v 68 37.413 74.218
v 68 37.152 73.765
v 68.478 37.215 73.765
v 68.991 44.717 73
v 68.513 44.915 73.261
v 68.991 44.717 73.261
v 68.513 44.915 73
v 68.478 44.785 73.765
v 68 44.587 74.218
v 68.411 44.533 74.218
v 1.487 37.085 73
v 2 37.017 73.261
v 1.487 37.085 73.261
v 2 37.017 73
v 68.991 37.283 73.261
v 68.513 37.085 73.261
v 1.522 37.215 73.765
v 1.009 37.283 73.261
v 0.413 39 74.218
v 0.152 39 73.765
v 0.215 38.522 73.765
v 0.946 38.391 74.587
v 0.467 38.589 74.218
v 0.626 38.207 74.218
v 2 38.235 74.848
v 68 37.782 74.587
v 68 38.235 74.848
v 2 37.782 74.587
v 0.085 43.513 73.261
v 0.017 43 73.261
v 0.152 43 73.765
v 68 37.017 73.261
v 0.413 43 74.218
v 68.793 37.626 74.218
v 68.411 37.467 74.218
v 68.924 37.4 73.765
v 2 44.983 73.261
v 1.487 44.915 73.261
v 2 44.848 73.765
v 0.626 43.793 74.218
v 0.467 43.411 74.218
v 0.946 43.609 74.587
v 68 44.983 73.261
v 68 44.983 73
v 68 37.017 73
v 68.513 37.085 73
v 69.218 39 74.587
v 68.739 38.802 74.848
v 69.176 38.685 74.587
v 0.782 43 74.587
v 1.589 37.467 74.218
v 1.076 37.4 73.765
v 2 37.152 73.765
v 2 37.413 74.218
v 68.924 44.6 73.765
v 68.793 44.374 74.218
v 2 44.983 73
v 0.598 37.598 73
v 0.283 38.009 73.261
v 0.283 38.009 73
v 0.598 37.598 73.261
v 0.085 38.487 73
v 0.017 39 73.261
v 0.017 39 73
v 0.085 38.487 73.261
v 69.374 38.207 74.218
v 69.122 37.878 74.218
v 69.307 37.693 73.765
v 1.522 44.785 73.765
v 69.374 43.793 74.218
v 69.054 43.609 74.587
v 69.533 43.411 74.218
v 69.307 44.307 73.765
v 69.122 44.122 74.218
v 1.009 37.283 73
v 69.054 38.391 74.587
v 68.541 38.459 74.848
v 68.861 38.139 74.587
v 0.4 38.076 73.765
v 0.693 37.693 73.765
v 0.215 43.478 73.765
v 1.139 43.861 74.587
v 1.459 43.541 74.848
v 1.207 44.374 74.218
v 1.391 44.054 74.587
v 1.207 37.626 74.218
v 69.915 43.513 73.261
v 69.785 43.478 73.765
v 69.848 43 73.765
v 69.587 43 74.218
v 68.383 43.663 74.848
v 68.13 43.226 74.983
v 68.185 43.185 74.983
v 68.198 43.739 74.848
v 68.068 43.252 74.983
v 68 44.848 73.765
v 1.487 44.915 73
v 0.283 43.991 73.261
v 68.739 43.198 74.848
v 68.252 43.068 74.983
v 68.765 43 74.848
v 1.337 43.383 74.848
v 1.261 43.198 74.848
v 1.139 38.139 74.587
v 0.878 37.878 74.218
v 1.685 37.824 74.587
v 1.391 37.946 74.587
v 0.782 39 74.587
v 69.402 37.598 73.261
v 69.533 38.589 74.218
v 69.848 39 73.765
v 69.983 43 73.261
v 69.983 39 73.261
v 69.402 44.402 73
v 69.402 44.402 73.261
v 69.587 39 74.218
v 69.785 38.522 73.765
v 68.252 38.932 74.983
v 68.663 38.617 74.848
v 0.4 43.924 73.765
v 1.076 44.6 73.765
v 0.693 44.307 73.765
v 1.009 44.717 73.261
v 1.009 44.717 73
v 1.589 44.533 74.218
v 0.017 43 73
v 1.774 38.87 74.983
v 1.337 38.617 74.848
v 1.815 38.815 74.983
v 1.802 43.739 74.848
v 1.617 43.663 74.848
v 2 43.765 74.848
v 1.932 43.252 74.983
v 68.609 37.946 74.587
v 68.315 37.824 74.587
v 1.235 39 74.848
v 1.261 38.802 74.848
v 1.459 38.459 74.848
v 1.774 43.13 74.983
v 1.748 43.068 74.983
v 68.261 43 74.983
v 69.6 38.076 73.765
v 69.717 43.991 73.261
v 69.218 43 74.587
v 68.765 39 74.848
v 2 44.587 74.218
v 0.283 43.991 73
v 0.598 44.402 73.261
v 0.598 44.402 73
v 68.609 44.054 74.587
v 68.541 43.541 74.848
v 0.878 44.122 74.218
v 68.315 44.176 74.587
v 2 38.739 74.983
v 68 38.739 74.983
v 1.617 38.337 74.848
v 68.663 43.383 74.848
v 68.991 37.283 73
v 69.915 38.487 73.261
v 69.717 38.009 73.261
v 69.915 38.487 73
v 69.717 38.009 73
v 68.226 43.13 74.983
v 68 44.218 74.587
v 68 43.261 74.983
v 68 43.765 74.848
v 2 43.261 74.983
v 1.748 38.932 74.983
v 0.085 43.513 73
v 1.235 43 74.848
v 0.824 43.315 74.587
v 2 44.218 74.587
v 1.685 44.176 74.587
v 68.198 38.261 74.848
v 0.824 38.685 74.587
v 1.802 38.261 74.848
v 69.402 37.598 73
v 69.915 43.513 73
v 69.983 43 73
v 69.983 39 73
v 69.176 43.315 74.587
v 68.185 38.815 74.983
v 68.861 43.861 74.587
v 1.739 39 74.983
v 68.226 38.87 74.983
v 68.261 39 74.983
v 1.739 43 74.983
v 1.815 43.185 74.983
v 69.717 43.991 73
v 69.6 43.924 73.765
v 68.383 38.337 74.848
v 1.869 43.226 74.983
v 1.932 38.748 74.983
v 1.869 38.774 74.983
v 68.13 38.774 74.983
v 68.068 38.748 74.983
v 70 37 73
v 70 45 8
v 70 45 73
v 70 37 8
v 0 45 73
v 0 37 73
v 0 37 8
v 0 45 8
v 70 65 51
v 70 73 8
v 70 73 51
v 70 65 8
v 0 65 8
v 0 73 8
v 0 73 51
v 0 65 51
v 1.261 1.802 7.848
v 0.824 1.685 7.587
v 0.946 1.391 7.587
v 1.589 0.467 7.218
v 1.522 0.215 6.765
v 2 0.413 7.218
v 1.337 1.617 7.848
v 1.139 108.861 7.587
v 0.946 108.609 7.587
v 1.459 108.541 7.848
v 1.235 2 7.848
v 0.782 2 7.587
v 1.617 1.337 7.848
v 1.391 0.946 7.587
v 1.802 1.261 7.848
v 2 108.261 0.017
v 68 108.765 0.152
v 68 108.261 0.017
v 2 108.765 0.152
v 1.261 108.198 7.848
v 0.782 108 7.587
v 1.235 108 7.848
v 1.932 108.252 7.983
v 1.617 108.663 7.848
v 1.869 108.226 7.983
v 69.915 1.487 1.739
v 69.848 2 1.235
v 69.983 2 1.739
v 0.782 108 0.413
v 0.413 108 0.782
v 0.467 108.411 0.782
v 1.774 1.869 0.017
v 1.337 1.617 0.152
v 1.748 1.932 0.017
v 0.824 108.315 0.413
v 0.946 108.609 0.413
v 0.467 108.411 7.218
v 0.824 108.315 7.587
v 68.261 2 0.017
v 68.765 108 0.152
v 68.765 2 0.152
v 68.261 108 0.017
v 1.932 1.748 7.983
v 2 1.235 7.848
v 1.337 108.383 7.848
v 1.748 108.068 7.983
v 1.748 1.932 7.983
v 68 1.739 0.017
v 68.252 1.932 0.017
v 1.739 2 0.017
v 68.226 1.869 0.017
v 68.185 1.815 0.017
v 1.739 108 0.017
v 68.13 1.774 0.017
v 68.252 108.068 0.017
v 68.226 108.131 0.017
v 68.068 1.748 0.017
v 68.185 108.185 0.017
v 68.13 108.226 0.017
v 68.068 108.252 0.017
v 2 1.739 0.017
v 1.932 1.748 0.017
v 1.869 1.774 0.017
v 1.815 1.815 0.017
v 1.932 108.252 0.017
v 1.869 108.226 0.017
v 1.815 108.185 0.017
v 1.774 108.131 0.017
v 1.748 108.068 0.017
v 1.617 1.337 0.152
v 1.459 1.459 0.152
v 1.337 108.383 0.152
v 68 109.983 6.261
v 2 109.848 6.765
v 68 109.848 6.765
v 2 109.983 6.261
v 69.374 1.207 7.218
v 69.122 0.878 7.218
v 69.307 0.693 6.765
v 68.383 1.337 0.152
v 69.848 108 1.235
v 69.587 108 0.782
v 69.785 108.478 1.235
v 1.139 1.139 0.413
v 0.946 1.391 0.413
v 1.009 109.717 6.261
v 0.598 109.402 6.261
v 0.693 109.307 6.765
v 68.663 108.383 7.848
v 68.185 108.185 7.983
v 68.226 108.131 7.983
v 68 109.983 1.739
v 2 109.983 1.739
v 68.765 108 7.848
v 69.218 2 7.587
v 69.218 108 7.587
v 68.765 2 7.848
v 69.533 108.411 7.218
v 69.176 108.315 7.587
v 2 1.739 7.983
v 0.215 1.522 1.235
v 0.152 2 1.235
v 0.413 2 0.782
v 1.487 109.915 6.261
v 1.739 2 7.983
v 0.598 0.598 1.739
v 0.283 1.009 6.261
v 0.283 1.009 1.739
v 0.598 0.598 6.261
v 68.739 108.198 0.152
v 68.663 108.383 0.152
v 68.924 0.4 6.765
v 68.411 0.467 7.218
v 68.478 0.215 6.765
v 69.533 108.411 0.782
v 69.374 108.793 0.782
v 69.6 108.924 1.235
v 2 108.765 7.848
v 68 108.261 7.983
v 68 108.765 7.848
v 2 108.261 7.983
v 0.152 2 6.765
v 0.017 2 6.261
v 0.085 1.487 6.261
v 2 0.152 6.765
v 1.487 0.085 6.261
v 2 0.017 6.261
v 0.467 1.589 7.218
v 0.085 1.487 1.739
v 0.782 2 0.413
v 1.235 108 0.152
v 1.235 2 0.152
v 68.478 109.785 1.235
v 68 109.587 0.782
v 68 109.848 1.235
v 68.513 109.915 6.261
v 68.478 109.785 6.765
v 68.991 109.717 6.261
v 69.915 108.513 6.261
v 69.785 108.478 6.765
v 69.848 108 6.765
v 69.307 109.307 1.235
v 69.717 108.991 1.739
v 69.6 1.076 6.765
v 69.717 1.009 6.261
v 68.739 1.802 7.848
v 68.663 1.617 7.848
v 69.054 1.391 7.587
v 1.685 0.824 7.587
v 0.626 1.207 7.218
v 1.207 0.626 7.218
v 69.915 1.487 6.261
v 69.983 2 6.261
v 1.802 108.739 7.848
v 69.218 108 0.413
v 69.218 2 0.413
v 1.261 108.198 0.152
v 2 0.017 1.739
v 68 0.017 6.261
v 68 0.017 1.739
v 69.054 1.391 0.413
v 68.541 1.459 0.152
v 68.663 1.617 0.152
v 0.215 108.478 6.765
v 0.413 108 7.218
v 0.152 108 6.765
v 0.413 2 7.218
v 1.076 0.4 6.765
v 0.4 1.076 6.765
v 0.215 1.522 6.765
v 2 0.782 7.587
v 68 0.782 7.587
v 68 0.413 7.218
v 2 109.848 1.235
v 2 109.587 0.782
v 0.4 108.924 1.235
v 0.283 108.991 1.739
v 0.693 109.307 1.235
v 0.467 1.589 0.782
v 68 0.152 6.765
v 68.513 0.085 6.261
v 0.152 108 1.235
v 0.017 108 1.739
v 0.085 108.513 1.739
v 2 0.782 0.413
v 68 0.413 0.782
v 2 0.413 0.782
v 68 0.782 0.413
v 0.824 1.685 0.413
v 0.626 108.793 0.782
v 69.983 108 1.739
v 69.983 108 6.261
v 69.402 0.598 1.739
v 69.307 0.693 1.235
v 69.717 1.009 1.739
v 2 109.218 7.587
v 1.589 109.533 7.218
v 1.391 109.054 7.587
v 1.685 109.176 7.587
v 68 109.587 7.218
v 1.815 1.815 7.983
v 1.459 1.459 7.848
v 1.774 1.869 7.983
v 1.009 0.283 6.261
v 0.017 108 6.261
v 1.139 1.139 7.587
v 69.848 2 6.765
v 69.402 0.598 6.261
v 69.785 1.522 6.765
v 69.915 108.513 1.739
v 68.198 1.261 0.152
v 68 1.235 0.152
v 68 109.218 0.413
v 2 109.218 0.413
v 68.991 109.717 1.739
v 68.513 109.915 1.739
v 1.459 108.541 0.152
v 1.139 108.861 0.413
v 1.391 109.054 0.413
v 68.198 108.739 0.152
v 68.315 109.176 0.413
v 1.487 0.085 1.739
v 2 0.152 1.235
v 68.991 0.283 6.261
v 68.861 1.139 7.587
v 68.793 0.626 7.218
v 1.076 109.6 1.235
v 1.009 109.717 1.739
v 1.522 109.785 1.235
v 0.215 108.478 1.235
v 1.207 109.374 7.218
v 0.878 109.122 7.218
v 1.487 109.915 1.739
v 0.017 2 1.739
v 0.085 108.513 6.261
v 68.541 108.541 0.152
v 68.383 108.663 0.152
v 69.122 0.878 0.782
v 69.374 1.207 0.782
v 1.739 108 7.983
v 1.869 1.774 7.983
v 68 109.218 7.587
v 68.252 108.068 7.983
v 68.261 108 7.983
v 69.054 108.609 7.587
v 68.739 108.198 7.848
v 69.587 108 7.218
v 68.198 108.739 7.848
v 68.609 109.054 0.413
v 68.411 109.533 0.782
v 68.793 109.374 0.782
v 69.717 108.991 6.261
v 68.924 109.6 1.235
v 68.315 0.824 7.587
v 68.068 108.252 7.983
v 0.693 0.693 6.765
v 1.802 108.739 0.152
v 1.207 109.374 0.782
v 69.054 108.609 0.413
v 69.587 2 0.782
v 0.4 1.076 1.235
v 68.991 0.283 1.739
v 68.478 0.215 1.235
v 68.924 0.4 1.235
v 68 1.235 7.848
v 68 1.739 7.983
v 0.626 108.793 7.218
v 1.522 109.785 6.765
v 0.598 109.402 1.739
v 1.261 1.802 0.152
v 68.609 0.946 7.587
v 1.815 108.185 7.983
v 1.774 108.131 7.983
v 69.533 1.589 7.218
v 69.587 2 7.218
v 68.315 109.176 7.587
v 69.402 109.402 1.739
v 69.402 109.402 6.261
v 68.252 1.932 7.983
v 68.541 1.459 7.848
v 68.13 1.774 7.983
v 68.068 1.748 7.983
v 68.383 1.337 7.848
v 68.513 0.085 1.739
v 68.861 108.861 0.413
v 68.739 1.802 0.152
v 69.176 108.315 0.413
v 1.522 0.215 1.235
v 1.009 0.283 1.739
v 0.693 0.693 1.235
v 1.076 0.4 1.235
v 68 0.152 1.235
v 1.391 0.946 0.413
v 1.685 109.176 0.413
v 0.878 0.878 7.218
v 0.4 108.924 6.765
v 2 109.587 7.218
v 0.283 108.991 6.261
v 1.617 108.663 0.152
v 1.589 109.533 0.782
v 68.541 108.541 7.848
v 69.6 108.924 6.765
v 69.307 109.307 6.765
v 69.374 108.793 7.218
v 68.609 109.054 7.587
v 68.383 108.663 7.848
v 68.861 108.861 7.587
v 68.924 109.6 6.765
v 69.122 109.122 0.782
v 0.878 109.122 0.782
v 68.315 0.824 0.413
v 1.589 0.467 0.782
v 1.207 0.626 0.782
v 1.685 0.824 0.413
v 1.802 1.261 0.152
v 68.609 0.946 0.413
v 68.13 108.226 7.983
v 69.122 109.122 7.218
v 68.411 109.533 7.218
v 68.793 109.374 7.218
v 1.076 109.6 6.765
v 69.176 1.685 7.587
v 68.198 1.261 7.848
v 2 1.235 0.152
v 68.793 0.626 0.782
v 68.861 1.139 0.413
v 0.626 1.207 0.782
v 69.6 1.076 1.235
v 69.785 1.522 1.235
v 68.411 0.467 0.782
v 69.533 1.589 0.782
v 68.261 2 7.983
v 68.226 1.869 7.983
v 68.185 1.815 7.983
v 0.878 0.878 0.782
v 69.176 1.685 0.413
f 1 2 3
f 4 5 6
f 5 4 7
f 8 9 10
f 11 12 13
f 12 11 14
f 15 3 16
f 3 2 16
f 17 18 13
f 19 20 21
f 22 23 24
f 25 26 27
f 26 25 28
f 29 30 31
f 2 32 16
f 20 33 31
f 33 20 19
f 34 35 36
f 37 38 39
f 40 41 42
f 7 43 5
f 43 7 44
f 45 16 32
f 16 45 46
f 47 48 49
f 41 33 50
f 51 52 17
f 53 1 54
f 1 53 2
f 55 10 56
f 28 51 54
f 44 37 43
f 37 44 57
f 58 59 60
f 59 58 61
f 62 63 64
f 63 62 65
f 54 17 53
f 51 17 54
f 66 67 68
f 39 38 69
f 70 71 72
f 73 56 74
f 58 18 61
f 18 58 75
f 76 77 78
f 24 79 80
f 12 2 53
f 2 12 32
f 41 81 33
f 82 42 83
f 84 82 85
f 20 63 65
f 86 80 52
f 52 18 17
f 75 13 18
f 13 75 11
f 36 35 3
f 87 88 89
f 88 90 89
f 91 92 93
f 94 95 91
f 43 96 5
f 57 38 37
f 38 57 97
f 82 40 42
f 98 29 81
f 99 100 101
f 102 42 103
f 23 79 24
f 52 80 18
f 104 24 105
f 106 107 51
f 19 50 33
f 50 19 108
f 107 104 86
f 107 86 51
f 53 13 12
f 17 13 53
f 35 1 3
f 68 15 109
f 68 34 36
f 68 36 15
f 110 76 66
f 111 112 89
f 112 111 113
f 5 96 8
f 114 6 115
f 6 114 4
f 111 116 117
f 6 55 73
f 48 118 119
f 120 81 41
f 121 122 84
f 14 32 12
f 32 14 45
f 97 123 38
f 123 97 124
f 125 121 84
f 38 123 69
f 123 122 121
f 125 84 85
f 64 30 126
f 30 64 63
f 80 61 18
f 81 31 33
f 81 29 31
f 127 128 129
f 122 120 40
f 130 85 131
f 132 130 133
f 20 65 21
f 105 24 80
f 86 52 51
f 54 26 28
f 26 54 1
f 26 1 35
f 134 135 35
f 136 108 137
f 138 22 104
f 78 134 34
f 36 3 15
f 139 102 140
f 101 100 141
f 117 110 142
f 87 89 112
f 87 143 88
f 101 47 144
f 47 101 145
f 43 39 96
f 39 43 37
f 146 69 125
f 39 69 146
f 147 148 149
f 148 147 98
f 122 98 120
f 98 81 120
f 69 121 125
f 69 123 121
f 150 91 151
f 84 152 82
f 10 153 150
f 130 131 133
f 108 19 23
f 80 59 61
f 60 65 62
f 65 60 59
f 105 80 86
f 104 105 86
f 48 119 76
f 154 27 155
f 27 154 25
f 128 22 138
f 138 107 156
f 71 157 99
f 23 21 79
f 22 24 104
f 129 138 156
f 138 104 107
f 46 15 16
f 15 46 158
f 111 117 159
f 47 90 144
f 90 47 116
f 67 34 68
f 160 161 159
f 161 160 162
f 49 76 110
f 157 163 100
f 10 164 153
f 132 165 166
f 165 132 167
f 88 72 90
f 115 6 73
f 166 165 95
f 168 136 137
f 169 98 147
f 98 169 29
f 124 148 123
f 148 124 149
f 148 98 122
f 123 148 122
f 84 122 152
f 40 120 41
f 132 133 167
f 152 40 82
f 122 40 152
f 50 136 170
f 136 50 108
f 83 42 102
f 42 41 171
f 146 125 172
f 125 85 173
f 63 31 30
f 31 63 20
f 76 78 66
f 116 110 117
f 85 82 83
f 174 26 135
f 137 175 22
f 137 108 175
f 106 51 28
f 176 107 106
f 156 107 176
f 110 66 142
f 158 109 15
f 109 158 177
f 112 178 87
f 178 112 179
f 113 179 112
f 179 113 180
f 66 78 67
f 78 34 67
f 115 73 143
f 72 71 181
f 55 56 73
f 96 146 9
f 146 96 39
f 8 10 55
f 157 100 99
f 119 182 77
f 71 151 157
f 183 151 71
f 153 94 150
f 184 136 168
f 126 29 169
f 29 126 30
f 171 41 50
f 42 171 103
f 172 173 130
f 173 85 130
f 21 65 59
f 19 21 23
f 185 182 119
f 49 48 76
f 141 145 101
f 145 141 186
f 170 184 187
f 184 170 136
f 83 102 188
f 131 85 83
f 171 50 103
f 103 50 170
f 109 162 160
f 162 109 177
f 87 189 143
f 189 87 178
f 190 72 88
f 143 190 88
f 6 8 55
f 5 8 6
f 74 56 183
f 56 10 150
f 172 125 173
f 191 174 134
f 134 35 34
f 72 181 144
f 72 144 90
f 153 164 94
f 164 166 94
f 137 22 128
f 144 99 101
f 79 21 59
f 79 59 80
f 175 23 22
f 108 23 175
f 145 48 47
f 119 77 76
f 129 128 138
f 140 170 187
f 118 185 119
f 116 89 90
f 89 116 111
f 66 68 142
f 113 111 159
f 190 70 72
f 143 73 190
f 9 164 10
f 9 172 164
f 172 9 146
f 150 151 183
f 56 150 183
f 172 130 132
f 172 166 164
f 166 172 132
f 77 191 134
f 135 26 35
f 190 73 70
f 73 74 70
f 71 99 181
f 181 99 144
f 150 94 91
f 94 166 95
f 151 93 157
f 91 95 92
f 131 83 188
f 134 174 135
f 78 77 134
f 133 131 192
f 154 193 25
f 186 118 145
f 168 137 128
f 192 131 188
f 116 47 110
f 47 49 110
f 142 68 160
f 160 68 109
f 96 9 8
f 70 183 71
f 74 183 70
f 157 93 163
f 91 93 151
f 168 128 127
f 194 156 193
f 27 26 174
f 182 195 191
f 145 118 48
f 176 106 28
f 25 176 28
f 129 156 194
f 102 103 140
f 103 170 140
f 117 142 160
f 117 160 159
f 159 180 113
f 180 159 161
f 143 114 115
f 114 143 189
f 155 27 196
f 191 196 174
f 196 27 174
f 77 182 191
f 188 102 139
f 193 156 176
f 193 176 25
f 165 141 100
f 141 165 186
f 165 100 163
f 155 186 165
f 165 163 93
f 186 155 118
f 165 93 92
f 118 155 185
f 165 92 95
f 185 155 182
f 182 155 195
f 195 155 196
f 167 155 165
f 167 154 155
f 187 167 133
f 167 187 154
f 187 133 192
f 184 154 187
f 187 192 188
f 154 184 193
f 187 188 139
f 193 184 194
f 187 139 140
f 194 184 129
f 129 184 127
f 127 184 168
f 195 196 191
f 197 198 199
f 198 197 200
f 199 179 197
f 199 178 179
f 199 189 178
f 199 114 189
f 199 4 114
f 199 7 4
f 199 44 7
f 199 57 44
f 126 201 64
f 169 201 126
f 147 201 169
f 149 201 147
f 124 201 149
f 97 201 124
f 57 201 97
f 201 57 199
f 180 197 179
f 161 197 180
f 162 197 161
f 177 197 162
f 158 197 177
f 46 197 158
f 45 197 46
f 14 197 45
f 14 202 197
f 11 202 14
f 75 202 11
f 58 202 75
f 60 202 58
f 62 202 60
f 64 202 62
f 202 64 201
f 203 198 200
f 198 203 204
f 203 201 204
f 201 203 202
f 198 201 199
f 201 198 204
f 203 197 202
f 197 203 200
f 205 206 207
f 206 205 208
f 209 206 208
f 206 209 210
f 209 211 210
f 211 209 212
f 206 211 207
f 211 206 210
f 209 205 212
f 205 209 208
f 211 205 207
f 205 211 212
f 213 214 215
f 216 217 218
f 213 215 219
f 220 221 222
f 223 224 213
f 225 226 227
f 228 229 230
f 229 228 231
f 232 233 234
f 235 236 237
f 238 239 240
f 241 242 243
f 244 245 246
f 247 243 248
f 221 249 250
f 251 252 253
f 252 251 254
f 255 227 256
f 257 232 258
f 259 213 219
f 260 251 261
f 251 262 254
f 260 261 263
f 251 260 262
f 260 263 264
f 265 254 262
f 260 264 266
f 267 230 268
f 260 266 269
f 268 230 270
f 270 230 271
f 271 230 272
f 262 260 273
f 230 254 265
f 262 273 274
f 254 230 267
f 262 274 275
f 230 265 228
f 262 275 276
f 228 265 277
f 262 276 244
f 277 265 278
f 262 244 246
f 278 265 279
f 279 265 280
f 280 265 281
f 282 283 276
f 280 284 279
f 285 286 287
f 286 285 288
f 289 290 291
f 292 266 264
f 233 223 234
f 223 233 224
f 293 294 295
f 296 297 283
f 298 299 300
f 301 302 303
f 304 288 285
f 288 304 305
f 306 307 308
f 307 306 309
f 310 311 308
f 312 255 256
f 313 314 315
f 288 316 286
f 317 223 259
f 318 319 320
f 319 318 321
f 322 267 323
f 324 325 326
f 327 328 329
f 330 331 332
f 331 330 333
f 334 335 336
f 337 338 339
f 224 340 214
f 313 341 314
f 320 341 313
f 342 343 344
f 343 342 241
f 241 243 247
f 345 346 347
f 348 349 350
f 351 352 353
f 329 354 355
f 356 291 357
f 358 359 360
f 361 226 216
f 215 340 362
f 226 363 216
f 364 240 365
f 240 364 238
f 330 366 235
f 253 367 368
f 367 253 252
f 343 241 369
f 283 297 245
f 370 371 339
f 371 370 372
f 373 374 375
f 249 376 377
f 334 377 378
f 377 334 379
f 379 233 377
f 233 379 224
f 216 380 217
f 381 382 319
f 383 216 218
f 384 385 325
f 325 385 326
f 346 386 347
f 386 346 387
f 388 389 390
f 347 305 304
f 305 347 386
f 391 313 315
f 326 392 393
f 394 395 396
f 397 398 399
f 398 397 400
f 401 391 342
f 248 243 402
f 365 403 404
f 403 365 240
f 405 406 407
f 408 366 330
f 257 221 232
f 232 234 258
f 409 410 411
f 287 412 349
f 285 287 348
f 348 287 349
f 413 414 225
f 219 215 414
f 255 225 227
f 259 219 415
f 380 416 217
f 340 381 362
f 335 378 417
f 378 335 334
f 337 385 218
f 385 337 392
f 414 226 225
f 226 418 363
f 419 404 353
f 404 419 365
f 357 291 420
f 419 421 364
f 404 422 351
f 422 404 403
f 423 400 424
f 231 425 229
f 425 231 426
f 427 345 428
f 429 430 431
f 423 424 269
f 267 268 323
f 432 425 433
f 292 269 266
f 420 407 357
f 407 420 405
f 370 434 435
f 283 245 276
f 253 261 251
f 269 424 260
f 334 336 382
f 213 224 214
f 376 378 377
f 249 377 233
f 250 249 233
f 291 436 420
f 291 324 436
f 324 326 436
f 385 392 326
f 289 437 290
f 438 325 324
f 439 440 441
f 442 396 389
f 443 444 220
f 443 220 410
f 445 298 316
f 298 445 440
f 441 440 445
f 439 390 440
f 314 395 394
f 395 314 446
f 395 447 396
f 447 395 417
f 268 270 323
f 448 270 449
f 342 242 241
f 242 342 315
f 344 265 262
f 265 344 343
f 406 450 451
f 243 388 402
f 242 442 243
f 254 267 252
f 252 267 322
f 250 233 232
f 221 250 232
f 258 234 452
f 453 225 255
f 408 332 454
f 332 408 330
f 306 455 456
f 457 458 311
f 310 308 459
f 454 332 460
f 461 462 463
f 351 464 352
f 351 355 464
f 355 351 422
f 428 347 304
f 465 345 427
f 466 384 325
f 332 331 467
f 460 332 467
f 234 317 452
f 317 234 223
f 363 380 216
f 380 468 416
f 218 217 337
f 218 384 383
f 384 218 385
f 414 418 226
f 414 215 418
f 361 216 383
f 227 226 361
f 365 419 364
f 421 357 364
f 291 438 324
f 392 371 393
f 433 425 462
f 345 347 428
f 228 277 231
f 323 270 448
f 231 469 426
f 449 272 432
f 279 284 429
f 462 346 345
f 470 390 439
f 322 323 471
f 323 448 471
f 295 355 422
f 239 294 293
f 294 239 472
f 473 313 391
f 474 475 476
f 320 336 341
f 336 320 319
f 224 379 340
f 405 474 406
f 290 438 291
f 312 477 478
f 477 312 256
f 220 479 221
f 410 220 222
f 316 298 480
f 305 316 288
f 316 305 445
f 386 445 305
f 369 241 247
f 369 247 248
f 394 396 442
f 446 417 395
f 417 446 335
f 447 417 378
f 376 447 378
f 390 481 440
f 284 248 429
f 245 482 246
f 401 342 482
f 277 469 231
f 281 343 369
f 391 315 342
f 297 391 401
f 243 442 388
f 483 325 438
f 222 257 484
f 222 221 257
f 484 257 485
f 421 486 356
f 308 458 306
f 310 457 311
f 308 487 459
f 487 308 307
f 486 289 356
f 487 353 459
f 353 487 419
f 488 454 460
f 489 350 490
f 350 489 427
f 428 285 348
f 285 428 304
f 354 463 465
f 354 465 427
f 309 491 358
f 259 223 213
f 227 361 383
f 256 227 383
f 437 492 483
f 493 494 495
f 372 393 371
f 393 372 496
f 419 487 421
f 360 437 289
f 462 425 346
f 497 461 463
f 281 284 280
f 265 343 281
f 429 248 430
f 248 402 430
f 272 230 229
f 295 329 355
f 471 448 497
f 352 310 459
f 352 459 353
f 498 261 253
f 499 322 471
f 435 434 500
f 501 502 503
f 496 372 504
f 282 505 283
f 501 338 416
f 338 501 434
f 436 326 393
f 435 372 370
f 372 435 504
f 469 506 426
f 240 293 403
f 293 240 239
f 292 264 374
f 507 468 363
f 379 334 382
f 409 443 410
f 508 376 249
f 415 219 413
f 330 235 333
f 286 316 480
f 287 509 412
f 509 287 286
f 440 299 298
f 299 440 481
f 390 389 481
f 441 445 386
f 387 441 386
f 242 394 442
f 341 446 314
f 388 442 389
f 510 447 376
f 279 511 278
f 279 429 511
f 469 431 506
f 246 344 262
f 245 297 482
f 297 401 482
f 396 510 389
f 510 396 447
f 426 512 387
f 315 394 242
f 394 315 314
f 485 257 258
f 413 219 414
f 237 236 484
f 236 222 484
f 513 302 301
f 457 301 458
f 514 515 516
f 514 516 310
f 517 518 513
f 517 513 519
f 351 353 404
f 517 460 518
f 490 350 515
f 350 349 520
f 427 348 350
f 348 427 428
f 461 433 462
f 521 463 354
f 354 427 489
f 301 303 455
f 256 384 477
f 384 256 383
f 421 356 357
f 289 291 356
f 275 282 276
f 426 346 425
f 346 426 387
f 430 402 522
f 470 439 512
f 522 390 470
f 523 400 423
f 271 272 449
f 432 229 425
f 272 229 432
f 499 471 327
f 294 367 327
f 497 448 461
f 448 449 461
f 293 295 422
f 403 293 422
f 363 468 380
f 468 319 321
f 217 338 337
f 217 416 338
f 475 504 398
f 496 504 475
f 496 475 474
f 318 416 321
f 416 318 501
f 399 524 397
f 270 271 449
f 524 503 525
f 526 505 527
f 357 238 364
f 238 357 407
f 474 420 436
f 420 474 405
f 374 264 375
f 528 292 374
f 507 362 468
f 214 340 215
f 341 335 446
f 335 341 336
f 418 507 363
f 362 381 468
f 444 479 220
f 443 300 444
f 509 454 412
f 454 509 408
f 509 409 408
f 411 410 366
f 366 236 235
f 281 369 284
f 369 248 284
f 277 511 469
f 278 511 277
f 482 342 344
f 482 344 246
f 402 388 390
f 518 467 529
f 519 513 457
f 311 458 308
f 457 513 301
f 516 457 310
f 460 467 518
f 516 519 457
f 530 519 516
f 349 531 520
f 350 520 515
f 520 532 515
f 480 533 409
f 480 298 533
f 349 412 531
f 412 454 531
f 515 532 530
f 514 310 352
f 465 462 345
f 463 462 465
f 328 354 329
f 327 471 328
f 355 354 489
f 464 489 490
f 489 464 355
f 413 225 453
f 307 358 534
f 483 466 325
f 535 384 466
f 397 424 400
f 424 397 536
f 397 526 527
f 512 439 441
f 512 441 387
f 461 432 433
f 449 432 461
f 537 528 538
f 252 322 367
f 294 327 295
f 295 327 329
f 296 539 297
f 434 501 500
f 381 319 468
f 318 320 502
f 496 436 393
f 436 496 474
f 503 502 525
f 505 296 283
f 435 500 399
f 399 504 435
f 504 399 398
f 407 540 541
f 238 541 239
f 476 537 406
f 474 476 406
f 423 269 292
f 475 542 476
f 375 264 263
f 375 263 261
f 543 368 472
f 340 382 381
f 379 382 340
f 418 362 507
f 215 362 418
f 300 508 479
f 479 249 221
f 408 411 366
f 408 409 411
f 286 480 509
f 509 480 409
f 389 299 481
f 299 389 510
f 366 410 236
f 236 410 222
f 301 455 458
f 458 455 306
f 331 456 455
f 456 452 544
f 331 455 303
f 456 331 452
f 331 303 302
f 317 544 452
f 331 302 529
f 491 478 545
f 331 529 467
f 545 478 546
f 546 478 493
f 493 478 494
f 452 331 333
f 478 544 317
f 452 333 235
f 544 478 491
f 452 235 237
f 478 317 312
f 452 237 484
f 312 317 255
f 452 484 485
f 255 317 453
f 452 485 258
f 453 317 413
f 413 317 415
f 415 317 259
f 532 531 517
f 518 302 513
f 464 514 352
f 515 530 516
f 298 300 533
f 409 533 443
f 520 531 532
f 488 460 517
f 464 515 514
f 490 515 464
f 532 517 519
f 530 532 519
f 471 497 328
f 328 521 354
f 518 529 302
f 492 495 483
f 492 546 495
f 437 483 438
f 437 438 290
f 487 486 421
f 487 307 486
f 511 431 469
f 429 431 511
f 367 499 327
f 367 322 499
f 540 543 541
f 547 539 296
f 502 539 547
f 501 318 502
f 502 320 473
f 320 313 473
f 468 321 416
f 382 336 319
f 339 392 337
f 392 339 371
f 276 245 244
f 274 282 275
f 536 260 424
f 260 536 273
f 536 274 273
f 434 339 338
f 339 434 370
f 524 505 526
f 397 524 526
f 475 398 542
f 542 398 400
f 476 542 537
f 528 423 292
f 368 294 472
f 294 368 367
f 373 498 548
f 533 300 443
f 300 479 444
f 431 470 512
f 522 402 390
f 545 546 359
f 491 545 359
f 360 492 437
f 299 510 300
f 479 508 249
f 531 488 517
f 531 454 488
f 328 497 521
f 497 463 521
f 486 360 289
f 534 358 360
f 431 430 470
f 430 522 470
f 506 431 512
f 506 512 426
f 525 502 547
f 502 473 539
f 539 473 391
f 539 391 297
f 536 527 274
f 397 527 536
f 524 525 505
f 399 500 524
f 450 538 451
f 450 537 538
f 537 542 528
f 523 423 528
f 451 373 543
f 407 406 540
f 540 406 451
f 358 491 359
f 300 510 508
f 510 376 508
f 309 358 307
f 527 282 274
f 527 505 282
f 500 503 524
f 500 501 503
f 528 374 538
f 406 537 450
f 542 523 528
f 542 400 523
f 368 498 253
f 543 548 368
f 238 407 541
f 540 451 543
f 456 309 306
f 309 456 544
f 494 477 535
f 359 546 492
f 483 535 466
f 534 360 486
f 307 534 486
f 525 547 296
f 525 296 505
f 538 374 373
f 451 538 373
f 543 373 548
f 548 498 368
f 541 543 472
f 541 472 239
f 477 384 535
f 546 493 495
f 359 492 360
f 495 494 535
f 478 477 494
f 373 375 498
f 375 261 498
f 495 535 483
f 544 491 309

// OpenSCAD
laptop_thickness = 18.9;
slot_clearance = 1.1;
slot_width = laptop_thickness + slot_clearance;

stand_length = 70;
base_depth = 110;
base_thickness = 8;
wall_height = 75;
wall_thickness = 8;
vent_cutout_start_z = 51;
corner_radius = 2;
$fn = 24;

slot_center_y = base_depth / 2;
slot_min_y = slot_center_y - slot_width / 2;
slot_max_y = slot_center_y + slot_width / 2;

module rounded_box(size, radius) {
  translate([radius, radius, radius])
    minkowski() {
      cube([
        size[0] - 2 * radius,
        size[1] - 2 * radius,
        size[2] - 2 * radius
      ]);
      sphere(radius);
    }
}

module solid_side_wall(y_pos) {
  translate([0, y_pos, base_thickness])
    rounded_box([stand_length, wall_thickness, wall_height - base_thickness], corner_radius);

  translate([0, y_pos, base_thickness])
    cube([stand_length, wall_thickness, wall_height - base_thickness - corner_radius]);
}

module side_wall(y_pos, vent_cutout = false) {
  difference() {
    solid_side_wall(y_pos);

    if (vent_cutout)
      translate([-1, y_pos - 1, vent_cutout_start_z])
        cube([
          stand_length + 2,
          wall_thickness + 2,
          wall_height - vent_cutout_start_z + 1
        ]);
  }
}

union() {
  rounded_box([stand_length, base_depth, base_thickness], corner_radius);

  side_wall(slot_min_y - wall_thickness);
  side_wall(slot_max_y, true);
}
